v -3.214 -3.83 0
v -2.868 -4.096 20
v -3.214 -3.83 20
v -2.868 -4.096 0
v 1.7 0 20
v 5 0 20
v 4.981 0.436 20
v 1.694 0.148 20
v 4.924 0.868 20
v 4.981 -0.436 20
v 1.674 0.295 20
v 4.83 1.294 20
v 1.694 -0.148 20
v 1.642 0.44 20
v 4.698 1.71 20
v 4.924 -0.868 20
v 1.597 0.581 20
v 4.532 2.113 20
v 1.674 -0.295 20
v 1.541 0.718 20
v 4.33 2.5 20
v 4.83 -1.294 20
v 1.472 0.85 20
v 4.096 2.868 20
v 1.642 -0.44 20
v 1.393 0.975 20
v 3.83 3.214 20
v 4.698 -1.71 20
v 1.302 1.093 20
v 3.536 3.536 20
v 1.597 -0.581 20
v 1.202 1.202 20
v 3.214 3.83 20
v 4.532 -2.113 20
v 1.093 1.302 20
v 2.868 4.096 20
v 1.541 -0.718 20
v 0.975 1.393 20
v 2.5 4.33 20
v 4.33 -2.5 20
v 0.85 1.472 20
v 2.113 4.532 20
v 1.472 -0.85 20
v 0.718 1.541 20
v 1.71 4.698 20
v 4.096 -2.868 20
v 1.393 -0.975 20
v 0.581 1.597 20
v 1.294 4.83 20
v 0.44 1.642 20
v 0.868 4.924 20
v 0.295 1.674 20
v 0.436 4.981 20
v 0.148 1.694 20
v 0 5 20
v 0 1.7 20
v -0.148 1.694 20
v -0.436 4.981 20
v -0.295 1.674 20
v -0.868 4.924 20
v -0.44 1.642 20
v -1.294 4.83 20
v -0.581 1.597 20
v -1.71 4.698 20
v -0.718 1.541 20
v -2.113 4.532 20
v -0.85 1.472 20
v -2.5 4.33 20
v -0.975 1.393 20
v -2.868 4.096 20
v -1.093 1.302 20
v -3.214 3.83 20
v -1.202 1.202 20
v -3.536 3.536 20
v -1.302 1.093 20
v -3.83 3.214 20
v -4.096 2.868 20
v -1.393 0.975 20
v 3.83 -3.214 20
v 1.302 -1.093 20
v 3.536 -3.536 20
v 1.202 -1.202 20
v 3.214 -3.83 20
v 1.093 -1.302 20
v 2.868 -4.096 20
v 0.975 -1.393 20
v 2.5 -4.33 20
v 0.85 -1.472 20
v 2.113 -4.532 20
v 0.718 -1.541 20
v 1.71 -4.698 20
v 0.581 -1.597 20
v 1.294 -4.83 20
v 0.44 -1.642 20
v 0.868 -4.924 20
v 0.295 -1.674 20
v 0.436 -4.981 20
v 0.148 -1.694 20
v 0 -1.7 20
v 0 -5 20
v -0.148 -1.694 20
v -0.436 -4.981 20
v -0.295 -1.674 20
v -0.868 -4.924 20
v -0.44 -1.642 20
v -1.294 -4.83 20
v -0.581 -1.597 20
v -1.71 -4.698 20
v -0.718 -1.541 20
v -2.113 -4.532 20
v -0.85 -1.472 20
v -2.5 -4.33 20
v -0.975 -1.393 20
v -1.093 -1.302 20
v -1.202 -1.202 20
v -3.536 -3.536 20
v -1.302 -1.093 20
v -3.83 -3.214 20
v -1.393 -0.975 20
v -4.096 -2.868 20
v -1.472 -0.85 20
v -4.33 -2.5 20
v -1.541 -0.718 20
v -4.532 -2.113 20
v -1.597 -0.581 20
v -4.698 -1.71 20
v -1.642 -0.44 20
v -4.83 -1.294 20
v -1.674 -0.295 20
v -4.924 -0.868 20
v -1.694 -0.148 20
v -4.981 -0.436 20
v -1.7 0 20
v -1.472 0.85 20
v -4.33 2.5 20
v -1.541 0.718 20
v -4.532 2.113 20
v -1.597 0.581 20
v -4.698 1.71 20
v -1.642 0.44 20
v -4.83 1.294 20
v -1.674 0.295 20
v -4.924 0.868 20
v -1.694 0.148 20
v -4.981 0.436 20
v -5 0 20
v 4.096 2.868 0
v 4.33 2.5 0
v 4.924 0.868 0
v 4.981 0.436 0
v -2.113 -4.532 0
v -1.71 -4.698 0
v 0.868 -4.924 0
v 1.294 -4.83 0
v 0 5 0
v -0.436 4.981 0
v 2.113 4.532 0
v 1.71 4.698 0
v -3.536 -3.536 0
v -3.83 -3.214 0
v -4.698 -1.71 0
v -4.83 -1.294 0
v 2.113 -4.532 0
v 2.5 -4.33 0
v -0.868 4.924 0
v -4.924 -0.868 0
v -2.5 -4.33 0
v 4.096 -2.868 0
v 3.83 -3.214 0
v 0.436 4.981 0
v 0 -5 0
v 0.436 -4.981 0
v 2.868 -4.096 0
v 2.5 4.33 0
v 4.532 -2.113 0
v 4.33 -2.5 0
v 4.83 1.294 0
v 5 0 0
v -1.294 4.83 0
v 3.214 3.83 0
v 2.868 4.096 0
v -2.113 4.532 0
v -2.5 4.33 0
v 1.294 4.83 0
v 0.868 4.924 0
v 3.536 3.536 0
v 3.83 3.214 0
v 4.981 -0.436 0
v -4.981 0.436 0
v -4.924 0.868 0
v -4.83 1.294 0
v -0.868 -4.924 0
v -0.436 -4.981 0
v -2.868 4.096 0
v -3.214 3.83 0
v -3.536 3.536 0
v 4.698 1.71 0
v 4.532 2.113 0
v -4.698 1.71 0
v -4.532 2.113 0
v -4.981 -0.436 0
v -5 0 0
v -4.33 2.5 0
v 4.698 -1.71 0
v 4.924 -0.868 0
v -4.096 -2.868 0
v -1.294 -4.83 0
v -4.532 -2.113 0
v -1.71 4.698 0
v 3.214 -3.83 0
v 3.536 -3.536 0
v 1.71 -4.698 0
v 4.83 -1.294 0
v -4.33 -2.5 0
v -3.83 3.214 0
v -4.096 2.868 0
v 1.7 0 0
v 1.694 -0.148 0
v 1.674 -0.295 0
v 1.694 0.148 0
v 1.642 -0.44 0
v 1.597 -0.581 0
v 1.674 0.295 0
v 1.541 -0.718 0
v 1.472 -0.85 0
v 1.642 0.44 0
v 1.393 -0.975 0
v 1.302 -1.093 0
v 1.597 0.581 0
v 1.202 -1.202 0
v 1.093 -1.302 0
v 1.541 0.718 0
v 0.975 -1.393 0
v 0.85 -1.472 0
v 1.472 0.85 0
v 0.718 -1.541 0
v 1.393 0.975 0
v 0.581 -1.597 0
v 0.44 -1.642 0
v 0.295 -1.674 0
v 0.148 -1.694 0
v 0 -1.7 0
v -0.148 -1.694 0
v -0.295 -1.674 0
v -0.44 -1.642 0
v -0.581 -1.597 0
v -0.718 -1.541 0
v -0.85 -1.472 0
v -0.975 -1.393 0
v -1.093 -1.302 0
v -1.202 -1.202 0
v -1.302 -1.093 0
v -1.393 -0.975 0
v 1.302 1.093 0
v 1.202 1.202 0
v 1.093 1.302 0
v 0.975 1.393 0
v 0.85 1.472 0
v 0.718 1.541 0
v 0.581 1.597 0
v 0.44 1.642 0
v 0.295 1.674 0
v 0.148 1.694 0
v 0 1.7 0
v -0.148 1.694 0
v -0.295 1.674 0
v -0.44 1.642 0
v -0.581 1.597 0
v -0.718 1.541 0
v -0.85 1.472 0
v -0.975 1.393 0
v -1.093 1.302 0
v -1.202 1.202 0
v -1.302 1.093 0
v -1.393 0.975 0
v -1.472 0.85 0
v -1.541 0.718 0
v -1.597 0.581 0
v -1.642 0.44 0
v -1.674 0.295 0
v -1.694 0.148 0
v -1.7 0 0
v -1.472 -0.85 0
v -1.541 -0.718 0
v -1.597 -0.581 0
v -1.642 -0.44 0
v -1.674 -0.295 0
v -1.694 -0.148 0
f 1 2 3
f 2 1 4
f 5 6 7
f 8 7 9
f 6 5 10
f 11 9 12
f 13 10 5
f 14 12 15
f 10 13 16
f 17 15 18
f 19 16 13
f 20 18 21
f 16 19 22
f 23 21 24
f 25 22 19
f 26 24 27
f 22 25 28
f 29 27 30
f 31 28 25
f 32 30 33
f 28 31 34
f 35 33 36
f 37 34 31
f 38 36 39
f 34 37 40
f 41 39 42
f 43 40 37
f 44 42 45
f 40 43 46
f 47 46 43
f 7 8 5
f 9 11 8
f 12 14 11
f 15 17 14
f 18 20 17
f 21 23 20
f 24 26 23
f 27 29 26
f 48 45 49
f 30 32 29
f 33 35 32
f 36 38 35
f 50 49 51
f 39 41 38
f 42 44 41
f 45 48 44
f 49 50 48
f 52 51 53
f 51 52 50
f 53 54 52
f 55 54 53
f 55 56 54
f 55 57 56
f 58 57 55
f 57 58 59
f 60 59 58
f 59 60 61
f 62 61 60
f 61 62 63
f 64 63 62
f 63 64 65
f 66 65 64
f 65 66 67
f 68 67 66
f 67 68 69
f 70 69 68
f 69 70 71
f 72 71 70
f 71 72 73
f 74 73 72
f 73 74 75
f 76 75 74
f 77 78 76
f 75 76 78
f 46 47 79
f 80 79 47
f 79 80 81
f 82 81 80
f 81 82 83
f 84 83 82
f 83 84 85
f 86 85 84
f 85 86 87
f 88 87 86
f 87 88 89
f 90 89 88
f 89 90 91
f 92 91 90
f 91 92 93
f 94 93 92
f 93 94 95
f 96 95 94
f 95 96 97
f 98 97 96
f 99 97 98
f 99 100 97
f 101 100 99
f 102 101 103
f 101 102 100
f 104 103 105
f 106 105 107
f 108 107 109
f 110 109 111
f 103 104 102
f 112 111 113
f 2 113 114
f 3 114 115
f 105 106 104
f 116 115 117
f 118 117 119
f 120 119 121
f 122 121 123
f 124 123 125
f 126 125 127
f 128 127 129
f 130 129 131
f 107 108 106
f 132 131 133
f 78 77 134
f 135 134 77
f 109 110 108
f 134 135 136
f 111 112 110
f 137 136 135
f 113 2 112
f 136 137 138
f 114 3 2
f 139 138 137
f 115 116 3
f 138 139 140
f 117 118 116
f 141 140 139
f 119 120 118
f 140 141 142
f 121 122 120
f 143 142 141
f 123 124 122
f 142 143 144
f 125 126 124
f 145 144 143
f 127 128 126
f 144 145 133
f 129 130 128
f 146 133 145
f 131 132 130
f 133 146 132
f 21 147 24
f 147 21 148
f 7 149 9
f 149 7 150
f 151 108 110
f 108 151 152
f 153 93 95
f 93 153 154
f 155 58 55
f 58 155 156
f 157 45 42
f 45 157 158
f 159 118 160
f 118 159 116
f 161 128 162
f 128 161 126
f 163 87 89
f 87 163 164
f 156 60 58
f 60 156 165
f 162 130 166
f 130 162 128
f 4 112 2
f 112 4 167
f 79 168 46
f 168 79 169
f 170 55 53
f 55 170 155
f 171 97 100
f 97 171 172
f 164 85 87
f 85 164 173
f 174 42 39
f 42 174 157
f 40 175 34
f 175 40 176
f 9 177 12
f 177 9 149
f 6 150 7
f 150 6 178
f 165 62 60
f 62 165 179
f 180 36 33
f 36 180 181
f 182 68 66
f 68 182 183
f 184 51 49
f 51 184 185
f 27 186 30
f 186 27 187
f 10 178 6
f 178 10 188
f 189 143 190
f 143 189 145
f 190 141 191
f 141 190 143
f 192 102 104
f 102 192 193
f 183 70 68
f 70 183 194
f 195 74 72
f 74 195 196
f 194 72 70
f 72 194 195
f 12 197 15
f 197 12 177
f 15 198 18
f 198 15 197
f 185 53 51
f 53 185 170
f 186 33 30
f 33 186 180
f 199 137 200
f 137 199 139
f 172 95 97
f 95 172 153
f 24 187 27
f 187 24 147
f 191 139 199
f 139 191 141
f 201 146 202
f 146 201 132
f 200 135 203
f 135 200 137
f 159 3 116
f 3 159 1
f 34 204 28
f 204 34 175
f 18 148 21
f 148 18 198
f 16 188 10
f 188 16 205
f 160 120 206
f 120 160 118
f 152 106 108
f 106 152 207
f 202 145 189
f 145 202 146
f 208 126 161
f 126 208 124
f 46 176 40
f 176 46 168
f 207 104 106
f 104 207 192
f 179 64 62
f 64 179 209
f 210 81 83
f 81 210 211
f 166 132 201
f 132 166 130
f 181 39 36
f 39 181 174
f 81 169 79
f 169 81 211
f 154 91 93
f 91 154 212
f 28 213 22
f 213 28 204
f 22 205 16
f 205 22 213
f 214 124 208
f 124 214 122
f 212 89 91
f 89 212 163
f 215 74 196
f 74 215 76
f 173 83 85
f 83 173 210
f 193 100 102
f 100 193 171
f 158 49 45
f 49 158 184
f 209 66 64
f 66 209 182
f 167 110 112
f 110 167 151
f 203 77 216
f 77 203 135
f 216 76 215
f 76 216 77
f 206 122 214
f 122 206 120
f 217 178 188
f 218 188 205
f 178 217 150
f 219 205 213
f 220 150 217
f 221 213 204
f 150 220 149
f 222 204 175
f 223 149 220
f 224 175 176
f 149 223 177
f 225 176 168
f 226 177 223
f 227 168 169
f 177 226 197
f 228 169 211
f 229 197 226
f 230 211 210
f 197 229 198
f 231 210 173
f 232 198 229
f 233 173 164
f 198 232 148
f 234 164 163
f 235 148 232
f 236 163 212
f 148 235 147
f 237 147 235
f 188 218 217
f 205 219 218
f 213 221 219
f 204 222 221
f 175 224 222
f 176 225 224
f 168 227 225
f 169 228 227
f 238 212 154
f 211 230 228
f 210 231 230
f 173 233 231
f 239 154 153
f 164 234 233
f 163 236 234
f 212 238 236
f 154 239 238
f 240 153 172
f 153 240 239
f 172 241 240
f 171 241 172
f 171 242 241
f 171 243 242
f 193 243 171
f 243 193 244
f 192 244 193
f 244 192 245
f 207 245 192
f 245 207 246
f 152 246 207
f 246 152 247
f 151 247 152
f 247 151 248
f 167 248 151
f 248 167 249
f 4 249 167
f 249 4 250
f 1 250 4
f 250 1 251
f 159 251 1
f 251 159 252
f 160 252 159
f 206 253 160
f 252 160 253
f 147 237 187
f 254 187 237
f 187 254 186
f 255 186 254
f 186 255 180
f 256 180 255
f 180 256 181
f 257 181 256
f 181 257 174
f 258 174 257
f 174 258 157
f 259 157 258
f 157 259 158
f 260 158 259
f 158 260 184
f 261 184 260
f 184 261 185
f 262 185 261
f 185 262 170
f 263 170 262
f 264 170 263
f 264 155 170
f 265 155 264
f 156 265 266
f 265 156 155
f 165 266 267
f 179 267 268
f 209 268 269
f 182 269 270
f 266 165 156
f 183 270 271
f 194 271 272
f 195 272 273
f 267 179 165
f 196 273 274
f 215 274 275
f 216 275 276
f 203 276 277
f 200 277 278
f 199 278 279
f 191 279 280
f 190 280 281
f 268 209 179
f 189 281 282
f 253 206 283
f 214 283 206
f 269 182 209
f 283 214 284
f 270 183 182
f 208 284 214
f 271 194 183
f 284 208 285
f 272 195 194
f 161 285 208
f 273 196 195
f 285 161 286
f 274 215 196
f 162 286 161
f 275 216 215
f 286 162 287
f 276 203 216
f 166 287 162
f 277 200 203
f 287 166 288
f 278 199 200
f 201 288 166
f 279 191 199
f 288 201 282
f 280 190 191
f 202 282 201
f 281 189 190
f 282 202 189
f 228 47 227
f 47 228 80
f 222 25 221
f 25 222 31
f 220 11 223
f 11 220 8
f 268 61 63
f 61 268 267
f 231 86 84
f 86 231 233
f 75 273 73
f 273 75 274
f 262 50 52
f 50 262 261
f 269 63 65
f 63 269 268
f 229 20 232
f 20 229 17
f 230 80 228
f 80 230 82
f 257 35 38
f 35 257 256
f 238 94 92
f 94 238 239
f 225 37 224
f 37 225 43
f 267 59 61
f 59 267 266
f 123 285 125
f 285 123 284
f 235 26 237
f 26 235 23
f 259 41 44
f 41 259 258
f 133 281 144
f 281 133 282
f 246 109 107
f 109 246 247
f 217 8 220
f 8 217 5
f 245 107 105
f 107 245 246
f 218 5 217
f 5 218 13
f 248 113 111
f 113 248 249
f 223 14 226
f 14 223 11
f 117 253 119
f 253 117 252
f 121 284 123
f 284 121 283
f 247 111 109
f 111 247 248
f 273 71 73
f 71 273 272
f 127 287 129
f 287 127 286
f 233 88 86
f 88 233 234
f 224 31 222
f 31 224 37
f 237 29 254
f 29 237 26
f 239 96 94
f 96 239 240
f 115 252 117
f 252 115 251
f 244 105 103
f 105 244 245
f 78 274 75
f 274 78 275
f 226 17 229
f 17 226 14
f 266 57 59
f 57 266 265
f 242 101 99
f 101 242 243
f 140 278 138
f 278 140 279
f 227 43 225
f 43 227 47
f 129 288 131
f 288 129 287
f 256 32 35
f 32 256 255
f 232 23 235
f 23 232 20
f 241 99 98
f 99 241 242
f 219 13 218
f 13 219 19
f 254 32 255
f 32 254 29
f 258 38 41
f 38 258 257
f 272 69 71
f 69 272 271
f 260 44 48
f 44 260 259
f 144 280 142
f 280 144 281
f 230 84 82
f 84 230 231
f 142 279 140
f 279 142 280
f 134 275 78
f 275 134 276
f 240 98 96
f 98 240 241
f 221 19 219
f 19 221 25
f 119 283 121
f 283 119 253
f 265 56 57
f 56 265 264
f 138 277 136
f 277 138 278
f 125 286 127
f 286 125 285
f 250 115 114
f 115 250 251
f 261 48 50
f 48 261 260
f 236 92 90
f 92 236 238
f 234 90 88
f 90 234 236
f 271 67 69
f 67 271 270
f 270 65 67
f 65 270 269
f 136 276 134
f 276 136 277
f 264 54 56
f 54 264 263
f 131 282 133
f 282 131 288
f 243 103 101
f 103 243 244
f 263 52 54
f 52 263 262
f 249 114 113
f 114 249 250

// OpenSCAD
// file: woli_config.scad
// ============================================================
// WOLI V1.1 AUDITED FINAL — MASTER PARAMETERS
// Units: mm
// ============================================================

$fn = 72;

// ---------- GLOBAL ----------
fit_clearance = 0.40;
wall = 3.0;
floor_t = 5.0;
cover_t = 2.8;
shell_r = 10.0;

m3_clear = 3.4;
m3_pilot_d = 2.8;
m3_pilot_depth = 4.2;

tie_slot_w = 3.8;
tie_slot_l = 18;

// ---------- BODY ----------
body_w = 170;
body_l = 90;
chassis_h = 31;
top_h = 34;

top_upper_w = 162;
top_upper_l = 80;
top_upper_r = 9;

// ---------- N20 DRIVE ----------
wheel_d = 43;
wheel_w = 17.5;

n20_x = 12;
n20_y = 33;
n20_z = 10;

n20_bracket_x = 25;
n20_bracket_y = 8.5;
n20_bracket_z = 11.5;
n20_bracket_hole_cc = 17;      // approx; slots absorb error

wheel_axis_ground_z = wheel_d/2; // reference only; actual chassis ground plane requires hardware check
wheel_opening_l = 25;            // side wheel cutout depth (Y), mm
motor_y = -body_l/2 + body_l/3;  // wheel center: 1/3 body depth in from front (-Y)
motor_slot_len = 8;
motor_bracket_zone_x = body_w/2 - 18;

// ---------- BALL CASTER ----------
caster_w = 22;
caster_l = 17;
caster_h = 15;
caster_ball_d_visual_ref = 11.5; // photo-only reference; not used for fit
caster_dock_y = body_l/2 - 21;

caster_body_clear = 0.7;
caster_retainer_t = 3.0;
caster_retainer_screw_cc = 27;

caster_mount_x = 15;
caster_mount_y = 12;
caster_floor_open = 18.5;

// ---------- MAIN PCB ----------
pcb_w = 50;
pcb_l = 70;
pcb_stack_h = 15;

pcb_tray_w = 56;
pcb_tray_l = 76;
pcb_mount_cc_x = 44;
pcb_mount_cc_y = 64;

// ---------- MG90S ----------
servo_a = 32.4;
servo_b = 32.5;
servo_c = 12;
servo_fit = 0.7;

// ---------- LIMIT SWITCH ----------
limit_w = 21;
limit_l = 23;
limit_h = 6;

// ---------- VL53L0X ----------
tof_w = 10.7;
tof_l = 25;
tof_h = 11.5;
tof_rail_clear = 0.7;

tof_bezel_w = 34;
tof_bezel_h = 19;

// ---------- PHONE HOLDER / NECK ----------
phone_ball_d = 18.0;            // physical socket fit still required
neck_h = 30;
neck_base_w = 54;
neck_base_l = 42;
neck_base_h = 5;
neck_hole_x = 38;
neck_hole_y = 26;

neck_recess_w = 62;
neck_recess_l = 50;
neck_recess_d = 1.2;

neck_pilot_d = 2.8;
neck_pilot_depth = 7.0;

// reference phone clearance envelope only
phone_ref_w = 165;
phone_ref_h = 82;
phone_ref_t = 12;

// ---------- KLIFE PD-Q2 BATTERY ----------
battery_w = 68;
battery_l = 143;
battery_h = 11;
battery_mass_g = 205;

battery_fit_clear = 0.8;
battery_tray_w = 84;
battery_tray_l = 146;
battery_tray_t = 2.4;
battery_rail_t = 2.5;
battery_rail_h = 5.5;
battery_center_y = -18;

battery_tray_mount_x = 39;
battery_tray_mount_y = 55;

// ---------- UPPER ELECTRONICS DECK ----------
bridge_w = 122;
bridge_l = 94;
bridge_t = 3.0;
bridge_leg_h = 20;
bridge_leg_x = 56;
bridge_leg_y = 36;

module_boss_h = 4.5;
module_boss_d = 8.0;
module_pilot_d = 2.8;

pcb_deck_cx = -25;
pcb_deck_cy = 0;

tb_deck_cx = 34;
tb_deck_cy = 17;

usbc_deck_cx = 36;
usbc_deck_cy = -24;

// ---------- TB6612FNG HW-166 ----------
tb6612_w = 26;
tb6612_l = 26;
tb6612_clear = 0.6;

// total installed height is intentionally not hard-coded

// ---------- USB-C BREAKOUT ----------
usbc_board_w = 12;
usbc_board_l = 15;
usbc_connector_h = 4.2;
usbc_clear = 0.6;

// ---------- TOP COVER INTERFACE ----------
cover_skirt_depth = 4.0;
cover_skirt_clear = 0.8;
cover_skirt_t = 2.5;

cover_side_screw_y = 55 * body_l / 190;
cover_side_screw_z = -2.5;

rear_service_w = 42;
rear_service_h = 14;
rear_hatch_screw_x = 19;
rear_hatch_center_z = 10;

// ---------- CABLE MANAGEMENT ----------
cable_bridge_w = 24;
cable_bridge_l = 14;
cable_bridge_h = 8;
cable_bridge_channel = 8;

// ---------- SERVO LOCK FRAMEWORK ----------
lock_angle_deg = 90;
unlock_angle_deg = 10;

lock_plate_d = 28;
lock_arm_w = 10;
lock_arm_t = 4.0;
lock_reach = 22;
lock_tip_d = 10;

horn_center_clear_d = 7.0;
horn_slot_d = 2.4;              // physical stock-horn check required
horn_slot_len = 8.0;
horn_slot_radius = 8.0;

lock_pad_t = 2.0;
lock_pad_d = 11.0;
// file: woli_lib.scad
include <woli_config.scad>;

module rr2d(w,l,r){
    offset(r=r) square([w-2*r,l-2*r], center=true);
}

module rplate(w,l,h,r){
    linear_extrude(height=h) rr2d(w,l,r);
}

module rshell(w,l,h,r,t,bottom){
    difference(){
        rplate(w,l,h,r);
        translate([0,0,bottom])
            rplate(w-2*t,l-2*t,h,r-t);
    }
}

module slot2d(len,d){
    hull(){
        translate([-len/2,0]) circle(d=d);
        translate([ len/2,0]) circle(d=d);
    }
}

module slot3d(len,d,h){
    linear_extrude(height=h) slot2d(len,d);
}

module tie_slot(h=5){
    rplate(tie_slot_w,tie_slot_l,h,1.2);
}

module body_screw_pattern(h=20){
    for(x=[-screw_x,screw_x])
        for(y=[-screw_y,screw_y])
            translate([x,y,-1])
                cylinder(h=h,d=m3_clear);
}

module body_bosses(h=20){
    for(x=[-screw_x,screw_x])
        for(y=[-screw_y,screw_y])
            translate([x,y,0])
                cylinder(h=h,d=m3_boss_d);
}


// Closed-top shell for removable upper cover.
// Leaves the underside open and preserves a roof thickness.
module top_shell(w,l,h,r,t){
    difference(){
        rplate(w,l,h,r);
        translate([0,0,-0.1])
            rplate(w-2*t,l-2*t,h-t+0.1,r-t);
    }
}


// Tapered rounded solid built from two rounded plates.
// Useful for product-like enclosure shoulders.
module tapered_rounded_solid(w0,l0,w1,l1,h,r0,r1){
    hull(){
        rplate(w0,l0,0.8,r0);
        translate([0,0,h-0.8])
            rplate(w1,l1,0.8,r1);
    }
}

// Open-bottom tapered cover with closed roof.
module tapered_top_shell(w0,l0,w1,l1,h,r0,r1,t){
    difference(){
        tapered_rounded_solid(w0,l0,w1,l1,h,r0,r1);
        translate([0,0,-0.1])
            tapered_rounded_solid(
                w0-2*t,l0-2*t,
                w1-2*t,l1-2*t,
                h-t+0.1,
                max(r0-t,1),max(r1-t,1)
            );
    }
}
// main file
include <woli_lib.scad>;

// Print 4 copies.
difference(){
    cylinder(h=bridge_leg_h,d=10);
    translate([0,0,-0.1])
        cylinder(h=bridge_leg_h+0.3,d=m3_clear);
}
